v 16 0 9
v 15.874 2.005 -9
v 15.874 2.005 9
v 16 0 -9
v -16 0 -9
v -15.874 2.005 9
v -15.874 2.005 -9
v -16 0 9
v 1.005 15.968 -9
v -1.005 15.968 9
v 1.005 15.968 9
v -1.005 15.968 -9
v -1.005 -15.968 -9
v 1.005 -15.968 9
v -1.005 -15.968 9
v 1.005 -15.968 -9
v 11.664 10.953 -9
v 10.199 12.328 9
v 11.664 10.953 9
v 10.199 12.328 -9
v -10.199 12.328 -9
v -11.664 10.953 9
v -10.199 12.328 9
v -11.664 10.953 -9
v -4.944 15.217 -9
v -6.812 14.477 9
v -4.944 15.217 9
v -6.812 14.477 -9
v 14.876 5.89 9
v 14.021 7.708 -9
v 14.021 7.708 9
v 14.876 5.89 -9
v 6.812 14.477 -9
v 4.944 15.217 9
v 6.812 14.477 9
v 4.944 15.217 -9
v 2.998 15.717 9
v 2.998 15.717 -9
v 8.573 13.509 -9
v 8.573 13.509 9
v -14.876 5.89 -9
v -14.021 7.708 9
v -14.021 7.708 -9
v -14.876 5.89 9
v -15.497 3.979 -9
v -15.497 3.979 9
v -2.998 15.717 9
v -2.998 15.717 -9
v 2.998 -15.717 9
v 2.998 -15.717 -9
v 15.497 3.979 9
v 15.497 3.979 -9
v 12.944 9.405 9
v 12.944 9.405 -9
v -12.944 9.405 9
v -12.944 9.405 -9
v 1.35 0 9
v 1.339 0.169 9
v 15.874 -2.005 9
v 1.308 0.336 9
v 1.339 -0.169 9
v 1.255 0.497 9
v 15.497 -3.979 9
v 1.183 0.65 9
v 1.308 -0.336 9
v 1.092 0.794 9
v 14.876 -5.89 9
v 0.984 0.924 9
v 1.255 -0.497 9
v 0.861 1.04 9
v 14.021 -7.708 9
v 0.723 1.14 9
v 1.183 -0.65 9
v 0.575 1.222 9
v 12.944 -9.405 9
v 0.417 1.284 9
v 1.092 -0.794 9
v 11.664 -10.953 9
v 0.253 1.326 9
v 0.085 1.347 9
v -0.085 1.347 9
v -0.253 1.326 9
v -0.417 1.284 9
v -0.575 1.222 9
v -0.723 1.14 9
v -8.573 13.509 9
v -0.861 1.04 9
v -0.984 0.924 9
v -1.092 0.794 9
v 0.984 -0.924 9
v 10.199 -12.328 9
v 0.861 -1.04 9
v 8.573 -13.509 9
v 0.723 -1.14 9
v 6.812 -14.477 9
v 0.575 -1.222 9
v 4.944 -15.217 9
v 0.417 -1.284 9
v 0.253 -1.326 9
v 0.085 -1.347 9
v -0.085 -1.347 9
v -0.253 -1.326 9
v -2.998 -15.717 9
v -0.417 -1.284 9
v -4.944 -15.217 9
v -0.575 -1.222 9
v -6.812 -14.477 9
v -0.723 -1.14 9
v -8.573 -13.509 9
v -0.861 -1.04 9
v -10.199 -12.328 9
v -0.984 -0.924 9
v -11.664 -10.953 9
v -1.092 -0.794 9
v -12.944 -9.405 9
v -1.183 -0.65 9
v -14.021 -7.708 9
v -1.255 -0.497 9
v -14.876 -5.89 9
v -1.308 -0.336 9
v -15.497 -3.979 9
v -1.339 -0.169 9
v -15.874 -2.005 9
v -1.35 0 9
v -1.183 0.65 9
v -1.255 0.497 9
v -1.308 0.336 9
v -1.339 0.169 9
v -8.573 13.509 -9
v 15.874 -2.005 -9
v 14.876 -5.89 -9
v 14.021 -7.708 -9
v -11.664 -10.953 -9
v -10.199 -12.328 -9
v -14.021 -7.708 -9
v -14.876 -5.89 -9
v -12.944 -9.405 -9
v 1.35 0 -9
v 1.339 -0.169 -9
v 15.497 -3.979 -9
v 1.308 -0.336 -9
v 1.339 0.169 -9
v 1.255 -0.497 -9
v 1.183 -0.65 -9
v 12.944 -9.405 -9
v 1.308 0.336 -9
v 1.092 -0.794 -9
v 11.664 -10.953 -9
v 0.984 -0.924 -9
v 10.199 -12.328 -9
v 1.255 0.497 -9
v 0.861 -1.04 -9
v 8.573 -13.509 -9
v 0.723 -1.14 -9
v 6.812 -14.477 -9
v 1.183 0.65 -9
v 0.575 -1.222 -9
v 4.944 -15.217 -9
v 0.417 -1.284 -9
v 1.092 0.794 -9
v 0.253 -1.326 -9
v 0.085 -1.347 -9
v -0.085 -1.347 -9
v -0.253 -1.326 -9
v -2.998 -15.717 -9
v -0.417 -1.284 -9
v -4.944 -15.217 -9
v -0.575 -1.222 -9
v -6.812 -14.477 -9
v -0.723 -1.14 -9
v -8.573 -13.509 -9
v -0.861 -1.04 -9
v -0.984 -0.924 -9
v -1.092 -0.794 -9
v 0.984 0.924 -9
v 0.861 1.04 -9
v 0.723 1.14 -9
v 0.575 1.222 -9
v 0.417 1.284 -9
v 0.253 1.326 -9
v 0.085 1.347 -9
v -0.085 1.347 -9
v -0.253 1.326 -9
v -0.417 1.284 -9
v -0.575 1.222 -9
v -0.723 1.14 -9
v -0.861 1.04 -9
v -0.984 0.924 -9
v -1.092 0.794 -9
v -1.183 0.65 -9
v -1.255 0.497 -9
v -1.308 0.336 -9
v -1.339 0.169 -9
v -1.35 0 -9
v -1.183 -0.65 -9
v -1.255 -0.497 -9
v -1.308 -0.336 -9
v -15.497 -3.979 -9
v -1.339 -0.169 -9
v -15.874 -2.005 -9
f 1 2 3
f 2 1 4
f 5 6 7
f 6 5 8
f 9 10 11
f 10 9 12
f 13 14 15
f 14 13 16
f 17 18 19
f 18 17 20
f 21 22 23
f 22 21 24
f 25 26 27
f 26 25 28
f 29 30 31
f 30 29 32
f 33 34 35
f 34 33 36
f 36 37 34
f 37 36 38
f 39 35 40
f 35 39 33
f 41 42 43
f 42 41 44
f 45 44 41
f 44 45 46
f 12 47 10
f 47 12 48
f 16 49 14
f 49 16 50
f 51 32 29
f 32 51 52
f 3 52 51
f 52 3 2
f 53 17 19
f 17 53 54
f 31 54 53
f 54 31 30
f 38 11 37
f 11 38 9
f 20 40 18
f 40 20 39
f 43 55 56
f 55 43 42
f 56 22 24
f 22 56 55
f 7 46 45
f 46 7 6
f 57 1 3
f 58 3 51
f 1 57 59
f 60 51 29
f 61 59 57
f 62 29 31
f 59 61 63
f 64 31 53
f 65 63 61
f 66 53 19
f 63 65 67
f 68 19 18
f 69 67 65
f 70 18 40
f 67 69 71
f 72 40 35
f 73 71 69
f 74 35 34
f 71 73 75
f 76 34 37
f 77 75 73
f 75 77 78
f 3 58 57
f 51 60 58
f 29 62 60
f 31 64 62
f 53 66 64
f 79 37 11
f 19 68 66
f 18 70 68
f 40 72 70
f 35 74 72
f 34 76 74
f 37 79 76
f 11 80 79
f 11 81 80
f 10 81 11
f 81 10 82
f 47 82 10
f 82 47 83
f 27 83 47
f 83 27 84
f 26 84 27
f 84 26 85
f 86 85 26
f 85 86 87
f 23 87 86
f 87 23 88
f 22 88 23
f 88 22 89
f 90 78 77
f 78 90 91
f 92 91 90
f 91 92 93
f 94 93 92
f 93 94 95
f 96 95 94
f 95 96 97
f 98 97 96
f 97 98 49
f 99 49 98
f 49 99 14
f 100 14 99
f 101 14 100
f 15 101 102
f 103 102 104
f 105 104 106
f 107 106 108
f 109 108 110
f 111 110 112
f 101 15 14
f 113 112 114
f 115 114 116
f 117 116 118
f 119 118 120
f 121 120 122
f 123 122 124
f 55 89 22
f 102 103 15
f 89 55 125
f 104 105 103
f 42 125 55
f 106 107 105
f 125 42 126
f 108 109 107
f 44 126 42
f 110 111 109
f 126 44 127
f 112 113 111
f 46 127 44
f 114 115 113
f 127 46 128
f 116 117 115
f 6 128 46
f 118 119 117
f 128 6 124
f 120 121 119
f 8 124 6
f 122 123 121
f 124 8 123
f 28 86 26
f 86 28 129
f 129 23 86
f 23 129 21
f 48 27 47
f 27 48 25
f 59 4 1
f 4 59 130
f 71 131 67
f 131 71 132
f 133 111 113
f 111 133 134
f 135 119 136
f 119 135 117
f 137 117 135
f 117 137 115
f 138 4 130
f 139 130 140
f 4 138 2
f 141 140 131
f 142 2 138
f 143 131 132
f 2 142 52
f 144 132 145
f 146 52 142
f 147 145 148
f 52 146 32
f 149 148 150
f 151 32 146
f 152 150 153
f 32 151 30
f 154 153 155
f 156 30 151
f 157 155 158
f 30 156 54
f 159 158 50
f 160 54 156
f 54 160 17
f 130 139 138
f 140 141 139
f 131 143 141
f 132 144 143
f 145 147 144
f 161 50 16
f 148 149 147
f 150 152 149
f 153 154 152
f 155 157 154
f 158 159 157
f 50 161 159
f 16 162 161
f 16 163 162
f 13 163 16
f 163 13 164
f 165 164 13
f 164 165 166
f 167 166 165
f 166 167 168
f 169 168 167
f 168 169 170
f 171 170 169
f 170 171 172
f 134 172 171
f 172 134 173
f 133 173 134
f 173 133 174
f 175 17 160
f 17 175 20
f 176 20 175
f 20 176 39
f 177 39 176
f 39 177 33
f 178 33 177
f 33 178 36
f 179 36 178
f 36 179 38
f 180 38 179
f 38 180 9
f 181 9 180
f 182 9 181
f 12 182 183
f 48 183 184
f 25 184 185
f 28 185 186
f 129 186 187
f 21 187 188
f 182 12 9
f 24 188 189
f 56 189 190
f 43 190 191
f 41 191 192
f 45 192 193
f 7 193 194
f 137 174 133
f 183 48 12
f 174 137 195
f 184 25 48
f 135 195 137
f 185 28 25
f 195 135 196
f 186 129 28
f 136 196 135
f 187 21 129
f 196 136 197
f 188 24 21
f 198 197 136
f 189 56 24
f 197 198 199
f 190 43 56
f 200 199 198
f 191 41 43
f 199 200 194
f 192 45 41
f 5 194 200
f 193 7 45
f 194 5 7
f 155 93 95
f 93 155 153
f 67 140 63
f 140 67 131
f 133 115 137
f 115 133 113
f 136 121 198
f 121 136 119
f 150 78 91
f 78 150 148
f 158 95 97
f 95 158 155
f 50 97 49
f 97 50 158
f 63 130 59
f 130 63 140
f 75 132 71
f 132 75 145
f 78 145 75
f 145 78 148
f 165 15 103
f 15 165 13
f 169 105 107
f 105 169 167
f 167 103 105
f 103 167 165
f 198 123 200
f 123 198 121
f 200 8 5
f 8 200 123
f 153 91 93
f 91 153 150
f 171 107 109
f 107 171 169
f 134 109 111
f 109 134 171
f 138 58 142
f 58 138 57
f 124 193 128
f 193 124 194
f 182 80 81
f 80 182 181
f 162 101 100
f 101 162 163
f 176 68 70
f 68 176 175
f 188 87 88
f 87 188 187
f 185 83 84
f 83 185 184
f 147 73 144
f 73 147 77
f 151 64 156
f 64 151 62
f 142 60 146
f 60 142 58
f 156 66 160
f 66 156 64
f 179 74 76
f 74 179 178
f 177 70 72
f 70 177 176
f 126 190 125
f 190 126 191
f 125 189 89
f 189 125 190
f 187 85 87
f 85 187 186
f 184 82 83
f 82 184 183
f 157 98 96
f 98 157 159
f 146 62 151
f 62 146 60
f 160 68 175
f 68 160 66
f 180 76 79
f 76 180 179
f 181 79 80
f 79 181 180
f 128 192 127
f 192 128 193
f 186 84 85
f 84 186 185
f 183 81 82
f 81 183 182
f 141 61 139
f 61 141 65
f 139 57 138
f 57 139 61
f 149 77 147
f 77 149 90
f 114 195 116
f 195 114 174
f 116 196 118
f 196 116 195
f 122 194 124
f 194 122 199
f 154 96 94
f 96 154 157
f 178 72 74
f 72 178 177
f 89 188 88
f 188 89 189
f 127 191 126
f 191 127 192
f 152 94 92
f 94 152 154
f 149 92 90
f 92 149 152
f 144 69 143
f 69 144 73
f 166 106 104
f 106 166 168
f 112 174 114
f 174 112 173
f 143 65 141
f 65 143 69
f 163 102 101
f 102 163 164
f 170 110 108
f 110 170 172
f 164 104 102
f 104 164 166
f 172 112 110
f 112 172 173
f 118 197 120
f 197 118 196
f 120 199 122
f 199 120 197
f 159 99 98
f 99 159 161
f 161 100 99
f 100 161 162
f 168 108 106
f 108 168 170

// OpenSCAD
$fn = 50;


difference() {
	union() {
		translate(v = [0, 0, -9.0000000000]) {
			cylinder(h = 18, r = 16.0000000000);
		}
	}
	union() {
		translate(v = [0, 0, -100.0000000000]) {
			cylinder(h = 200, r = 1.3500000000);
		}
	}
}
